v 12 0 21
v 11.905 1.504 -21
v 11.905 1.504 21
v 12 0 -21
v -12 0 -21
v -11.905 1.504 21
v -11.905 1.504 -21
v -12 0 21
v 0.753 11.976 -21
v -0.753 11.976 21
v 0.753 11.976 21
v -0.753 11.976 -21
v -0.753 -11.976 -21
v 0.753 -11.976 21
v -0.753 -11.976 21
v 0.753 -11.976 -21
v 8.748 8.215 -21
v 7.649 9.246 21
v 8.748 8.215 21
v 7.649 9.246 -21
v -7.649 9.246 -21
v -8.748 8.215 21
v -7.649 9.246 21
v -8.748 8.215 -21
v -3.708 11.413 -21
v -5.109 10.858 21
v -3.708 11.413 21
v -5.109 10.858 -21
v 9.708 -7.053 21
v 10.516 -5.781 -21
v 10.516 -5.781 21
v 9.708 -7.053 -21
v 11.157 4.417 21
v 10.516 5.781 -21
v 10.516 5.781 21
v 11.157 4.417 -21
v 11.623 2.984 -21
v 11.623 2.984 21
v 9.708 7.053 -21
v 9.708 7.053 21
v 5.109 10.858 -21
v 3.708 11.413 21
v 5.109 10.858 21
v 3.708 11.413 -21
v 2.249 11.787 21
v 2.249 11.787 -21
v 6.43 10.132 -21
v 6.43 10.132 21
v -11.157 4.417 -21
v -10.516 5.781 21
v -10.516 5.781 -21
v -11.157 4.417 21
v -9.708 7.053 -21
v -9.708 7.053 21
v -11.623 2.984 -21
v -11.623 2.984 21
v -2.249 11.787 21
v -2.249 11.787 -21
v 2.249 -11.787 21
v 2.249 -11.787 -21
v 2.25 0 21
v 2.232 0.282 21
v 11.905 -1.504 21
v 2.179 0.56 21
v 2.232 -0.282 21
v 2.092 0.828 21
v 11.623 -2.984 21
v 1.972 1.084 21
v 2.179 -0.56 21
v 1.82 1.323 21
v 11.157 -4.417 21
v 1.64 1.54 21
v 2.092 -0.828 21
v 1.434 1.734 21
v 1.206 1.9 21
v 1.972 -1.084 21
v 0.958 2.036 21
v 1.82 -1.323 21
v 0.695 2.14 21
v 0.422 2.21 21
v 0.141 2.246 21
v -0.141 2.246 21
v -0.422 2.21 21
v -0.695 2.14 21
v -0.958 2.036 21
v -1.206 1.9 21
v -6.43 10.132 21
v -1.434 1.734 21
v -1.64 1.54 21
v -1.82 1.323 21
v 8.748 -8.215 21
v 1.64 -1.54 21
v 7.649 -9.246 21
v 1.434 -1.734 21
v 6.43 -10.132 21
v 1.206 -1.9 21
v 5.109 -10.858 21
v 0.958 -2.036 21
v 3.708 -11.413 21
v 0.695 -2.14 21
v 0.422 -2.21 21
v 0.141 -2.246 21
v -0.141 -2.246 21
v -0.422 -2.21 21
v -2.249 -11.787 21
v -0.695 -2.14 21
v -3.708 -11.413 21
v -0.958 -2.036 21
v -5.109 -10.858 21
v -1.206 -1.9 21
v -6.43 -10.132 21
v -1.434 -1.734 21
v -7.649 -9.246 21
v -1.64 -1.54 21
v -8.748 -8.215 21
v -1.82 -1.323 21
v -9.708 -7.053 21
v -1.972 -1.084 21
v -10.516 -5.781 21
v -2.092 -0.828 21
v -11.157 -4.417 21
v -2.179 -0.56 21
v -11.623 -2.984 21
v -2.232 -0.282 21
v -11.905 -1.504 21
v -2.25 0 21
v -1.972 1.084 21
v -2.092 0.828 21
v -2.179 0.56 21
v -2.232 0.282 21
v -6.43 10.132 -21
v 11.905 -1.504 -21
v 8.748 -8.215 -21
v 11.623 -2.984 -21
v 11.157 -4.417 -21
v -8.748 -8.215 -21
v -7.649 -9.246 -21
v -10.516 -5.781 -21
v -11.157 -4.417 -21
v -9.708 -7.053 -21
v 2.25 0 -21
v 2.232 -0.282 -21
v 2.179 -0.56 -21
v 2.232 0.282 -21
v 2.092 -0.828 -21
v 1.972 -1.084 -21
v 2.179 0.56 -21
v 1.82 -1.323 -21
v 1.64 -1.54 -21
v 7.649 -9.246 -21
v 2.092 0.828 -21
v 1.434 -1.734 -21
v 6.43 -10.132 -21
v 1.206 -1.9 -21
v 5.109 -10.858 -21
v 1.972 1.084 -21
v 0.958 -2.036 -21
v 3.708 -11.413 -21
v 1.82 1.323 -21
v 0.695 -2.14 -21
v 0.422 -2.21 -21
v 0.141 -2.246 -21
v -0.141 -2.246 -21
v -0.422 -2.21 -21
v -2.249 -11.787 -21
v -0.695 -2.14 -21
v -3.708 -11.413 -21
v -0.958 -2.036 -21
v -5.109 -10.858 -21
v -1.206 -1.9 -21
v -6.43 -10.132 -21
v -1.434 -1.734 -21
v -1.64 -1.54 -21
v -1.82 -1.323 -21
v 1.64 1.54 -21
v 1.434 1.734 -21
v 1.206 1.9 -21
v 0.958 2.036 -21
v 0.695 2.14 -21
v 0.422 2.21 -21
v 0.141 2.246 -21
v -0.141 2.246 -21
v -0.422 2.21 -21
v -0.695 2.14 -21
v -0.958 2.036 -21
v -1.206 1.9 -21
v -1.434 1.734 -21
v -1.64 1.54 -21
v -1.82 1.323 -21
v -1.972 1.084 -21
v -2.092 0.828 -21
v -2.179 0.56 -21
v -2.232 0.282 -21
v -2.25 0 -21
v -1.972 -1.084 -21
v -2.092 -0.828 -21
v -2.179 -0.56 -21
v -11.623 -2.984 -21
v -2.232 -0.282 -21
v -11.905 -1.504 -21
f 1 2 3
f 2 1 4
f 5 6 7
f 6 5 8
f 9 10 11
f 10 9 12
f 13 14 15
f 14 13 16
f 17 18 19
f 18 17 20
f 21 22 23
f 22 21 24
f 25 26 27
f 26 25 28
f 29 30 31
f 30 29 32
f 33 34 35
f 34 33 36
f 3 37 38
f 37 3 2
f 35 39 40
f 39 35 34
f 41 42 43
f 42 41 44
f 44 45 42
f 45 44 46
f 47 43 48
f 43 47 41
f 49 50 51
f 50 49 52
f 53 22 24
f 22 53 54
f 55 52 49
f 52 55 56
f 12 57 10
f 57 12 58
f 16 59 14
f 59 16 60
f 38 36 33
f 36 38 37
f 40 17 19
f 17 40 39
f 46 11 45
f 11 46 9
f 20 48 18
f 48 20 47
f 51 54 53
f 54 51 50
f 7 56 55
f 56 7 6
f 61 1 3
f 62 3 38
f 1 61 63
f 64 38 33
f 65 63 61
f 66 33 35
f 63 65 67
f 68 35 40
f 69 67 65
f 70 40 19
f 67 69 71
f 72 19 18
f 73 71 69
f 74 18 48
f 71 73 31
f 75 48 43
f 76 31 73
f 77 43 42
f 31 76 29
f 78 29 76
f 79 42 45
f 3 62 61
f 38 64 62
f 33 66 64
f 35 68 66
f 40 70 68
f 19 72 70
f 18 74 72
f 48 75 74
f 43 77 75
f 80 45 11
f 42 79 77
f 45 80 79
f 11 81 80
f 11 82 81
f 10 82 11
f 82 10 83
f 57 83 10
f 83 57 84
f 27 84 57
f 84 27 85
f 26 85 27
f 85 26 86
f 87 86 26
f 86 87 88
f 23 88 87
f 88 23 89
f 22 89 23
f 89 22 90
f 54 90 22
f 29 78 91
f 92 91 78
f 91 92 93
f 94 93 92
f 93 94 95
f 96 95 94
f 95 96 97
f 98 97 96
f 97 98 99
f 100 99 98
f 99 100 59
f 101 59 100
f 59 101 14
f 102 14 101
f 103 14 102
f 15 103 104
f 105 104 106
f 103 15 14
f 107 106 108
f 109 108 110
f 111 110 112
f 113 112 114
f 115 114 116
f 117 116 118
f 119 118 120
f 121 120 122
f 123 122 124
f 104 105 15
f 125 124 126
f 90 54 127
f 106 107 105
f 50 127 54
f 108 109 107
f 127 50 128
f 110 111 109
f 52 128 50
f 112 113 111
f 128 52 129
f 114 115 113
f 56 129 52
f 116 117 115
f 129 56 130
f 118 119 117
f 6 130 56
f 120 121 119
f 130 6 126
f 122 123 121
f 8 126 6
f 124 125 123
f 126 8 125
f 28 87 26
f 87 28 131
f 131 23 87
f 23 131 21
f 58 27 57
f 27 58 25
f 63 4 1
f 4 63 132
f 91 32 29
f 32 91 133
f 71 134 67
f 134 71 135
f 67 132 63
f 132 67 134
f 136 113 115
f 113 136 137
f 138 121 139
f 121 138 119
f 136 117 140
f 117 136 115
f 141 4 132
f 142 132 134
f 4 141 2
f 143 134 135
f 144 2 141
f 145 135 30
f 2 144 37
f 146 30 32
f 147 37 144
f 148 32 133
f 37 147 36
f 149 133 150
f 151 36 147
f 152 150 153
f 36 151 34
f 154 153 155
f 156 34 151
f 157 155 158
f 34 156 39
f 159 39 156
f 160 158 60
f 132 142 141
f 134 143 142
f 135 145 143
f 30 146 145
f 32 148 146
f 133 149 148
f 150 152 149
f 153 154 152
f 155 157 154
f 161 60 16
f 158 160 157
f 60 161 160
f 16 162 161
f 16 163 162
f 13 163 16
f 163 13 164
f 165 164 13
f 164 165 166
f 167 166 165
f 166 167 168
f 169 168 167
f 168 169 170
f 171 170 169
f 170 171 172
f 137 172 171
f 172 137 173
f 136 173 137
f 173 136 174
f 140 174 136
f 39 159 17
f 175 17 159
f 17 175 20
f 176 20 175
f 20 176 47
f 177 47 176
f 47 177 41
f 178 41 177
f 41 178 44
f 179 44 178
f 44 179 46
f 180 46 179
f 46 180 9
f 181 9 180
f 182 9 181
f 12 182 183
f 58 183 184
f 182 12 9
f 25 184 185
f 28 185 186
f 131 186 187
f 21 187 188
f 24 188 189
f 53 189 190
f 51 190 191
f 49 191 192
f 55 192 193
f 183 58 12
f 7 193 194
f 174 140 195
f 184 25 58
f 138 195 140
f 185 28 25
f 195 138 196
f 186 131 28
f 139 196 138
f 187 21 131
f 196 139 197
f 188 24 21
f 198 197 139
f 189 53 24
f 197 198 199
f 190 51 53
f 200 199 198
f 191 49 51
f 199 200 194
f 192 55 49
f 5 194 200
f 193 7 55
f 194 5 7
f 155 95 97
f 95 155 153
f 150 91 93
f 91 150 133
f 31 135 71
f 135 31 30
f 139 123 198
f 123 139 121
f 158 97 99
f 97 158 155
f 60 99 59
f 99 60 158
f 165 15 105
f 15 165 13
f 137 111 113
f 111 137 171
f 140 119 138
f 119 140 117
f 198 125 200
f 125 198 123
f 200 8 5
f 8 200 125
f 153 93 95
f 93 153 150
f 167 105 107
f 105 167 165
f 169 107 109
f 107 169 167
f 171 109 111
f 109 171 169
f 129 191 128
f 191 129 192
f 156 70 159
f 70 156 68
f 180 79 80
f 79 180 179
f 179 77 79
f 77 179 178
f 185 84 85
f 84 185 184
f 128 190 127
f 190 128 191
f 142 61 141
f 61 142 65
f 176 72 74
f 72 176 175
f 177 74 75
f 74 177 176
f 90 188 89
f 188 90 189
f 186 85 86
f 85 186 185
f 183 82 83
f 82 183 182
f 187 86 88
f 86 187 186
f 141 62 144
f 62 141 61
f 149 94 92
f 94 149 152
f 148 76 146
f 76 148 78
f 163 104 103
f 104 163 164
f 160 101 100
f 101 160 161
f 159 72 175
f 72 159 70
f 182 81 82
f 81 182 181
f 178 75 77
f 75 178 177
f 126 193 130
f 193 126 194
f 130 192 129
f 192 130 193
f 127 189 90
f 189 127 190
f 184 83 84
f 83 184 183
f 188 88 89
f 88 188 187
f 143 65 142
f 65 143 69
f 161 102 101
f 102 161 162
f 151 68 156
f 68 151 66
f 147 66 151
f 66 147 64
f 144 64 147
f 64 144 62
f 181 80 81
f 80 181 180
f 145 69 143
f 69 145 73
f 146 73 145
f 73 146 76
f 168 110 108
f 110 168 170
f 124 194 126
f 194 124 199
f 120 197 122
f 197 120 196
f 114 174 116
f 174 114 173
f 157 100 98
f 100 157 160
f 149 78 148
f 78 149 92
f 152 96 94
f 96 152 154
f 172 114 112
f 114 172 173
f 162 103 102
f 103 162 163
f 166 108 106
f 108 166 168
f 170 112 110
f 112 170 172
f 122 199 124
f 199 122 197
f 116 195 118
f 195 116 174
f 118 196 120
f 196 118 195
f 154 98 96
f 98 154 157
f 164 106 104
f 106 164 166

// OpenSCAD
$fn = 50;


difference() {
	union() {
		translate(v = [0, 0, -21.0000000000]) {
			cylinder(h = 42, r = 12.0000000000);
		}
	}
	union() {
		translate(v = [0, 0, -100.0000000000]) {
			cylinder(h = 200, r = 2.2500000000);
		}
	}
}
